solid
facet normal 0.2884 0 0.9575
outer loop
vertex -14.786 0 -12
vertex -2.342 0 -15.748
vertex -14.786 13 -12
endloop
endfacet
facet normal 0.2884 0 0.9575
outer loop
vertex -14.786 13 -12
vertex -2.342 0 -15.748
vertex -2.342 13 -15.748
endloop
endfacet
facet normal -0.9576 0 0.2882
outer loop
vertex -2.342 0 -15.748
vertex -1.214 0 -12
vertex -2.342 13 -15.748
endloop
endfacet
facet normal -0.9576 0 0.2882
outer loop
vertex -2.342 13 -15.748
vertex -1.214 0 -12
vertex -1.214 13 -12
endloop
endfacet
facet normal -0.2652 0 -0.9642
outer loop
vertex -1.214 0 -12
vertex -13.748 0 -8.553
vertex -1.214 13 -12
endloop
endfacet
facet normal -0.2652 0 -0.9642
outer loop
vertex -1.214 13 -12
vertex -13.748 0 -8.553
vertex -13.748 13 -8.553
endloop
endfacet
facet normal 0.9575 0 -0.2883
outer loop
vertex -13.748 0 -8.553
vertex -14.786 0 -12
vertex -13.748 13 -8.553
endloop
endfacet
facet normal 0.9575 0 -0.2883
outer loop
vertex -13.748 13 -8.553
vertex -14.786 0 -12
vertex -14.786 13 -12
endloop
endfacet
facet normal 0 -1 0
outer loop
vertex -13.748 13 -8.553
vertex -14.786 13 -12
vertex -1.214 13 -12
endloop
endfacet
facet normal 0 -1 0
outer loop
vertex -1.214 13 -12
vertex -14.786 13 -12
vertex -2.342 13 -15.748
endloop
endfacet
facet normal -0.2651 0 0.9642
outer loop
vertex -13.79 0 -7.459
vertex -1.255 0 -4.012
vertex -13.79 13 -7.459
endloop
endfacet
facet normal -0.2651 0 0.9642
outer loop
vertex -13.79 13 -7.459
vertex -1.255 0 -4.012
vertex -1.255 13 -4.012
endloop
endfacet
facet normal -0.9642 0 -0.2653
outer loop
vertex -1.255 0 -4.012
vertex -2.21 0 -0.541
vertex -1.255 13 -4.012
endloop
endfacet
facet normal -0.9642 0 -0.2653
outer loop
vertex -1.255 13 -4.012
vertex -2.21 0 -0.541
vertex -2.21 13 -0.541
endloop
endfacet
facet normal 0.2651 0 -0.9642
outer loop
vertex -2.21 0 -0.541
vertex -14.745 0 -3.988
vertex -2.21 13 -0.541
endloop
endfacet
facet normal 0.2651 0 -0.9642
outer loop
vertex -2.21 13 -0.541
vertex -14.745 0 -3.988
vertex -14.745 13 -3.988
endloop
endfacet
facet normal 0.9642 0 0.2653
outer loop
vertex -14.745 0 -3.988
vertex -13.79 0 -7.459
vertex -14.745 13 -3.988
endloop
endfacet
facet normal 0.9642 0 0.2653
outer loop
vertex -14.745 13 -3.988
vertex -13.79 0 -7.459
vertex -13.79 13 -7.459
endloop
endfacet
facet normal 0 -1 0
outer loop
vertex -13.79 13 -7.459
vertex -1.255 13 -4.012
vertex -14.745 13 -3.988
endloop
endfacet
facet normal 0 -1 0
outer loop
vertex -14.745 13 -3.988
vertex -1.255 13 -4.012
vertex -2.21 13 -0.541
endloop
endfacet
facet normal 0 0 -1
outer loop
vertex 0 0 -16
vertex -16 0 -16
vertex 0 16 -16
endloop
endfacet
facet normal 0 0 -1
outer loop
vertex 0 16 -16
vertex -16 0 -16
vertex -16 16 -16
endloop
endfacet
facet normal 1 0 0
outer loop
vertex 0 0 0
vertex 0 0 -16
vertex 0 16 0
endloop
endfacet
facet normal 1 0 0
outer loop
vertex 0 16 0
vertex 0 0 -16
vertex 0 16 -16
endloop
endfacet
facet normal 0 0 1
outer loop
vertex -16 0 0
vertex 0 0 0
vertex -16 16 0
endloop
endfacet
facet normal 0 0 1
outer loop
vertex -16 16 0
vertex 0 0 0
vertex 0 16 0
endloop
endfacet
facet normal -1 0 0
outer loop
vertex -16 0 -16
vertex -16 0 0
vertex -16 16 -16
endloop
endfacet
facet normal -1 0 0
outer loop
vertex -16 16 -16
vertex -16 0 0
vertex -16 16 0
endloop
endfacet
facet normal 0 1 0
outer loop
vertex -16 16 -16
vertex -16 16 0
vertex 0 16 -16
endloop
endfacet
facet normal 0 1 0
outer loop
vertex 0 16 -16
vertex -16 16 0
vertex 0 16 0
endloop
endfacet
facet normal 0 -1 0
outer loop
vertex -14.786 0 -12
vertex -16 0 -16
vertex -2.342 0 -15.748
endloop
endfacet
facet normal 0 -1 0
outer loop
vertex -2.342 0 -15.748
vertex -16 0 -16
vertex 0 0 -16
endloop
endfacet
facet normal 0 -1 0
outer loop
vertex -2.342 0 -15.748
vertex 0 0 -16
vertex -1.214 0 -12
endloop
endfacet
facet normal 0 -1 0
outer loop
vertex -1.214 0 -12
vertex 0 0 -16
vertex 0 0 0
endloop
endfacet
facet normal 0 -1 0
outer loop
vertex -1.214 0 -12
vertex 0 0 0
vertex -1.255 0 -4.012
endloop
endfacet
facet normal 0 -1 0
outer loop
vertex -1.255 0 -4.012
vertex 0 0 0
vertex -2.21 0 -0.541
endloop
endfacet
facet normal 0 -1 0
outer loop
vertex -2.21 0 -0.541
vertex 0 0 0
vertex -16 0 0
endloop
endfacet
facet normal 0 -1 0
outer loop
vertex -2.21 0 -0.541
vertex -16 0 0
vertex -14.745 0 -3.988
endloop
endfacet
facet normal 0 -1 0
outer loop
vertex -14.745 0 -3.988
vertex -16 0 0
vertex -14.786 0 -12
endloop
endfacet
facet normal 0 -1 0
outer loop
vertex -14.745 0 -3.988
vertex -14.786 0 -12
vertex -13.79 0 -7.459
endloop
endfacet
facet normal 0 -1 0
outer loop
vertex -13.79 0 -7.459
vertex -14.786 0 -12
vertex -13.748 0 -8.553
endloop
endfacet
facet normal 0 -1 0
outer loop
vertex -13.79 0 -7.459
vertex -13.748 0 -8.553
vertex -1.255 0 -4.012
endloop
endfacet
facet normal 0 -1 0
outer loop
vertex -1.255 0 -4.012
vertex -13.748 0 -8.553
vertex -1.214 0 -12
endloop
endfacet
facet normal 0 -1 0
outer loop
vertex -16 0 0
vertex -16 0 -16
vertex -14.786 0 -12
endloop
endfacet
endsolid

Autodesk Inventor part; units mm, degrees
ref_plane "YZ Plane" through (0, 0, 0) normal (1, 0, 0) x (0, 1, 0)
ref_plane "XZ Plane" through (0, 0, 0) normal (0, 1, 0) x (-1, 0, 0)
ref_plane "XY Plane" through (0, 0, 0) normal (0, 0, 1) x (1, 0, 0)
sketch "Sketch1" plane through (0, 0, 0) normal (0, 1, 0) x (-1, 0, 0)
  point P0 (0, 0)
sketch "Sketch2" plane through (0, 0, 0) normal (0, 1, 0) x (-1, 0, 0)
  line L0 (0, 0) -> (16, 0)
  line L1 (16, 0) -> (16, -16)
  line L2 (16, -16) -> (0, -16)
  line L3 (0, -16) -> (0, 0)
  line L4 (0, 0) -> (0, -8)
  dimension "d1" = 16
  dimension "d2" = 16
extrude "Extrusion1" add sketch "Sketch2" along normal blind 16
sketch "Sketch3" plane through (0, 0, 0) normal (0, -1, 0) x (1, 0, 0)
  line L0 (-16, 0) -> (0, 0) projected
  line L1 (-16, -16) -> (-16, 0) projected
  line L2 (0, 0) -> (0, -16) projected
  line L3 (-16, -8) -> (0, -8)
  line L4 (-16, -8) -> (-16, -9.8)
  line L5 (0, -16) -> (0, -14.2)
  line L6 (0, -14.2) -> (-16, -9.8)
  line L7 (-8, -12) -> (-1.7327, -13.7235)
  line L8 (-1.7327, -13.7235) -> (-1.2135, -12)
  line L9 (-1.2135, -12) -> (-13.7482, -8.553)
  line L10 (-13.7482, -8.553) -> (-14.7865, -12)
  line L11 (-14.7865, -12) -> (-2.3425, -15.7481)
  line L12 (-2.3425, -15.7481) -> (-1.7327, -13.7235)
  line L13 (-16, -8) -> (-16, -6.2)
  line L14 (0, 0) -> (0, -1.8)
  line L15 (0, -1.8) -> (-16, -6.2)
  line L16 (-8, -4) -> (-14.2673, -5.7235)
  line L17 (-14.2673, -5.7235) -> (-13.7901, -7.4591)
  line L18 (-13.7901, -7.4591) -> (-1.2554, -4.0121)
  line L19 (-13.7901, -7.4591) -> (-14.7446, -3.9879)
  line L20 (-14.7446, -3.9879) -> (-2.2099, -0.5409)
  line L21 (-2.2099, -0.5409) -> (-1.2554, -4.0121)
  dimension "d28" = 1.8
  dimension "d31" = 1.8
  dimension "d32" = 13
  dimension "d33" = 3.6
  dimension "d34" = 1.8
  dimension "d35" = 1.8
  dimension "d37" = 1.8
  dimension "d38" = 13
  dimension "d42" = 3.6
  dimension "d43" = 13
extrude "Extrusion2" cut sketch "Sketch3" against normal blind 13 contours L19 L20 L21 L15 | L15 L21 L18 L17 | L10 L9 L8 L6 | L6 L12 L11 L10
properties part number "pawn-2"
